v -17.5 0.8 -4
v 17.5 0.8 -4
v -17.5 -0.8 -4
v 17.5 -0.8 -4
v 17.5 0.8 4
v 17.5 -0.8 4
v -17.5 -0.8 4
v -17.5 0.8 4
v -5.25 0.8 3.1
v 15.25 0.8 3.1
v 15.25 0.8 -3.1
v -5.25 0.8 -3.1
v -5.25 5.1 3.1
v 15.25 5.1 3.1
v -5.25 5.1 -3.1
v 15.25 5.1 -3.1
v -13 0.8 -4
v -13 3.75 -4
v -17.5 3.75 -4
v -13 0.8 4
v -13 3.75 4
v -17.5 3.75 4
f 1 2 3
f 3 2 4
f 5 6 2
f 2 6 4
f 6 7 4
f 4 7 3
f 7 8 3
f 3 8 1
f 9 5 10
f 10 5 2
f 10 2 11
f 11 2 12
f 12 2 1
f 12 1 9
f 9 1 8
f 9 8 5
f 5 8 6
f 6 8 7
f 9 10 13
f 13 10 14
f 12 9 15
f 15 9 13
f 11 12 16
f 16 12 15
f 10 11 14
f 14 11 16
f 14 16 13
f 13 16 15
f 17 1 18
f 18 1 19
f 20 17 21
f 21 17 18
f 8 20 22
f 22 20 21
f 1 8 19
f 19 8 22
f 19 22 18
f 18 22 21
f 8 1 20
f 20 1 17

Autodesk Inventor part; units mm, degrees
ref_plane "YZ Plane" through (0, 0, 0) normal (1, 0, 0) x (0, 1, 0)
ref_plane "XZ Plane" through (0, 0, 0) normal (0, 1, 0) x (-1, 0, 0)
ref_plane "XY Plane" through (0, 0, 0) normal (0, 0, 1) x (1, 0, 0)
sketch "Sketch4" plane through (0, 0, 0) normal (0, 0, 1) x (1, 0, 0)
  line L0 (-17.5, 0.8) -> (17.5, 0.8)
  line L1 (17.5, 0.8) -> (17.5, -0.8)
  line L2 (17.5, -0.8) -> (-17.5, -0.8)
  line L3 (-17.5, -0.8) -> (-17.5, 0.8)
  line L4 (-17.5, 0.8) -> (17.5, -0.8) construction
  line L5 (17.5, 0.8) -> (-17.5, -0.8) construction
  point P0 (0, 0)
  dimension "d4" = 35
  dimension "d5" = 1.6
extrude "Extrusion2" add sketch "Sketch4" along normal mid plane 8
sketch "Sketch5" plane through (-17.5, 0.8, 4) normal (0, 1, 0) x (1, 0, 0)
  line L0 (35, 8) -> (35, 0) projected
  line L1 (35, 4) -> (32.75, 4)
  line L2 (32.75, 4) -> (12.25, 4)
  line L3 (12.25, 0.9) -> (32.75, 0.9)
  line L4 (32.75, 0.9) -> (32.75, 7.1)
  line L5 (32.75, 7.1) -> (12.25, 7.1)
  line L6 (12.25, 7.1) -> (12.25, 0.9)
  line L7 (12.25, 0.9) -> (32.75, 7.1) construction
  line L8 (32.75, 0.9) -> (12.25, 7.1) construction
  point P0 (17.5, 4)
  point P1 (22.5, 4)
  dimension "d8" = 2.25
  dimension "d9" = 20.5
  dimension "d10" = 20.5
  dimension "d11" = 6.2
extrude "Extrusion3" add sketch "Sketch5" along normal blind 4.3
sketch "Sketch6" plane through (-17.5, 0.8, 4) normal (0, 1, 0) x (1, 0, 0)
  line L0 (32.75, 0.9) -> (12.25, 0.9) projected
  line L1 (12.25, 0.9) -> (12.25, 7.1) projected
  line L2 (12.25, 7.1) -> (32.75, 7.1) projected
  line L3 (32.75, 7.1) -> (32.75, 0.9) projected
  line L4 (0, 8) -> (0, 0) projected
  line L5 (35, 0) -> (0, 0) projected
  line L6 (35, 0) -> (35, 8) projected
  line L7 (0, 8) -> (35, 8) projected
  line L8 (0, 8) -> (0, 0) projected
  line L9 (0, 0) -> (0, 8)
  line L10 (0, 8) -> (4.5, 8)
  line L11 (4.5, 8) -> (4.5, 0)
  line L12 (4.5, 0) -> (0, 0)
  point P0 (17.5, 4)
  dimension "d14" = 4.5
extrude "Extrusion4" add sketch "Sketch6" along normal blind 2.95 separate body contours L7 L11 L5 L4
properties part number "GPS"
